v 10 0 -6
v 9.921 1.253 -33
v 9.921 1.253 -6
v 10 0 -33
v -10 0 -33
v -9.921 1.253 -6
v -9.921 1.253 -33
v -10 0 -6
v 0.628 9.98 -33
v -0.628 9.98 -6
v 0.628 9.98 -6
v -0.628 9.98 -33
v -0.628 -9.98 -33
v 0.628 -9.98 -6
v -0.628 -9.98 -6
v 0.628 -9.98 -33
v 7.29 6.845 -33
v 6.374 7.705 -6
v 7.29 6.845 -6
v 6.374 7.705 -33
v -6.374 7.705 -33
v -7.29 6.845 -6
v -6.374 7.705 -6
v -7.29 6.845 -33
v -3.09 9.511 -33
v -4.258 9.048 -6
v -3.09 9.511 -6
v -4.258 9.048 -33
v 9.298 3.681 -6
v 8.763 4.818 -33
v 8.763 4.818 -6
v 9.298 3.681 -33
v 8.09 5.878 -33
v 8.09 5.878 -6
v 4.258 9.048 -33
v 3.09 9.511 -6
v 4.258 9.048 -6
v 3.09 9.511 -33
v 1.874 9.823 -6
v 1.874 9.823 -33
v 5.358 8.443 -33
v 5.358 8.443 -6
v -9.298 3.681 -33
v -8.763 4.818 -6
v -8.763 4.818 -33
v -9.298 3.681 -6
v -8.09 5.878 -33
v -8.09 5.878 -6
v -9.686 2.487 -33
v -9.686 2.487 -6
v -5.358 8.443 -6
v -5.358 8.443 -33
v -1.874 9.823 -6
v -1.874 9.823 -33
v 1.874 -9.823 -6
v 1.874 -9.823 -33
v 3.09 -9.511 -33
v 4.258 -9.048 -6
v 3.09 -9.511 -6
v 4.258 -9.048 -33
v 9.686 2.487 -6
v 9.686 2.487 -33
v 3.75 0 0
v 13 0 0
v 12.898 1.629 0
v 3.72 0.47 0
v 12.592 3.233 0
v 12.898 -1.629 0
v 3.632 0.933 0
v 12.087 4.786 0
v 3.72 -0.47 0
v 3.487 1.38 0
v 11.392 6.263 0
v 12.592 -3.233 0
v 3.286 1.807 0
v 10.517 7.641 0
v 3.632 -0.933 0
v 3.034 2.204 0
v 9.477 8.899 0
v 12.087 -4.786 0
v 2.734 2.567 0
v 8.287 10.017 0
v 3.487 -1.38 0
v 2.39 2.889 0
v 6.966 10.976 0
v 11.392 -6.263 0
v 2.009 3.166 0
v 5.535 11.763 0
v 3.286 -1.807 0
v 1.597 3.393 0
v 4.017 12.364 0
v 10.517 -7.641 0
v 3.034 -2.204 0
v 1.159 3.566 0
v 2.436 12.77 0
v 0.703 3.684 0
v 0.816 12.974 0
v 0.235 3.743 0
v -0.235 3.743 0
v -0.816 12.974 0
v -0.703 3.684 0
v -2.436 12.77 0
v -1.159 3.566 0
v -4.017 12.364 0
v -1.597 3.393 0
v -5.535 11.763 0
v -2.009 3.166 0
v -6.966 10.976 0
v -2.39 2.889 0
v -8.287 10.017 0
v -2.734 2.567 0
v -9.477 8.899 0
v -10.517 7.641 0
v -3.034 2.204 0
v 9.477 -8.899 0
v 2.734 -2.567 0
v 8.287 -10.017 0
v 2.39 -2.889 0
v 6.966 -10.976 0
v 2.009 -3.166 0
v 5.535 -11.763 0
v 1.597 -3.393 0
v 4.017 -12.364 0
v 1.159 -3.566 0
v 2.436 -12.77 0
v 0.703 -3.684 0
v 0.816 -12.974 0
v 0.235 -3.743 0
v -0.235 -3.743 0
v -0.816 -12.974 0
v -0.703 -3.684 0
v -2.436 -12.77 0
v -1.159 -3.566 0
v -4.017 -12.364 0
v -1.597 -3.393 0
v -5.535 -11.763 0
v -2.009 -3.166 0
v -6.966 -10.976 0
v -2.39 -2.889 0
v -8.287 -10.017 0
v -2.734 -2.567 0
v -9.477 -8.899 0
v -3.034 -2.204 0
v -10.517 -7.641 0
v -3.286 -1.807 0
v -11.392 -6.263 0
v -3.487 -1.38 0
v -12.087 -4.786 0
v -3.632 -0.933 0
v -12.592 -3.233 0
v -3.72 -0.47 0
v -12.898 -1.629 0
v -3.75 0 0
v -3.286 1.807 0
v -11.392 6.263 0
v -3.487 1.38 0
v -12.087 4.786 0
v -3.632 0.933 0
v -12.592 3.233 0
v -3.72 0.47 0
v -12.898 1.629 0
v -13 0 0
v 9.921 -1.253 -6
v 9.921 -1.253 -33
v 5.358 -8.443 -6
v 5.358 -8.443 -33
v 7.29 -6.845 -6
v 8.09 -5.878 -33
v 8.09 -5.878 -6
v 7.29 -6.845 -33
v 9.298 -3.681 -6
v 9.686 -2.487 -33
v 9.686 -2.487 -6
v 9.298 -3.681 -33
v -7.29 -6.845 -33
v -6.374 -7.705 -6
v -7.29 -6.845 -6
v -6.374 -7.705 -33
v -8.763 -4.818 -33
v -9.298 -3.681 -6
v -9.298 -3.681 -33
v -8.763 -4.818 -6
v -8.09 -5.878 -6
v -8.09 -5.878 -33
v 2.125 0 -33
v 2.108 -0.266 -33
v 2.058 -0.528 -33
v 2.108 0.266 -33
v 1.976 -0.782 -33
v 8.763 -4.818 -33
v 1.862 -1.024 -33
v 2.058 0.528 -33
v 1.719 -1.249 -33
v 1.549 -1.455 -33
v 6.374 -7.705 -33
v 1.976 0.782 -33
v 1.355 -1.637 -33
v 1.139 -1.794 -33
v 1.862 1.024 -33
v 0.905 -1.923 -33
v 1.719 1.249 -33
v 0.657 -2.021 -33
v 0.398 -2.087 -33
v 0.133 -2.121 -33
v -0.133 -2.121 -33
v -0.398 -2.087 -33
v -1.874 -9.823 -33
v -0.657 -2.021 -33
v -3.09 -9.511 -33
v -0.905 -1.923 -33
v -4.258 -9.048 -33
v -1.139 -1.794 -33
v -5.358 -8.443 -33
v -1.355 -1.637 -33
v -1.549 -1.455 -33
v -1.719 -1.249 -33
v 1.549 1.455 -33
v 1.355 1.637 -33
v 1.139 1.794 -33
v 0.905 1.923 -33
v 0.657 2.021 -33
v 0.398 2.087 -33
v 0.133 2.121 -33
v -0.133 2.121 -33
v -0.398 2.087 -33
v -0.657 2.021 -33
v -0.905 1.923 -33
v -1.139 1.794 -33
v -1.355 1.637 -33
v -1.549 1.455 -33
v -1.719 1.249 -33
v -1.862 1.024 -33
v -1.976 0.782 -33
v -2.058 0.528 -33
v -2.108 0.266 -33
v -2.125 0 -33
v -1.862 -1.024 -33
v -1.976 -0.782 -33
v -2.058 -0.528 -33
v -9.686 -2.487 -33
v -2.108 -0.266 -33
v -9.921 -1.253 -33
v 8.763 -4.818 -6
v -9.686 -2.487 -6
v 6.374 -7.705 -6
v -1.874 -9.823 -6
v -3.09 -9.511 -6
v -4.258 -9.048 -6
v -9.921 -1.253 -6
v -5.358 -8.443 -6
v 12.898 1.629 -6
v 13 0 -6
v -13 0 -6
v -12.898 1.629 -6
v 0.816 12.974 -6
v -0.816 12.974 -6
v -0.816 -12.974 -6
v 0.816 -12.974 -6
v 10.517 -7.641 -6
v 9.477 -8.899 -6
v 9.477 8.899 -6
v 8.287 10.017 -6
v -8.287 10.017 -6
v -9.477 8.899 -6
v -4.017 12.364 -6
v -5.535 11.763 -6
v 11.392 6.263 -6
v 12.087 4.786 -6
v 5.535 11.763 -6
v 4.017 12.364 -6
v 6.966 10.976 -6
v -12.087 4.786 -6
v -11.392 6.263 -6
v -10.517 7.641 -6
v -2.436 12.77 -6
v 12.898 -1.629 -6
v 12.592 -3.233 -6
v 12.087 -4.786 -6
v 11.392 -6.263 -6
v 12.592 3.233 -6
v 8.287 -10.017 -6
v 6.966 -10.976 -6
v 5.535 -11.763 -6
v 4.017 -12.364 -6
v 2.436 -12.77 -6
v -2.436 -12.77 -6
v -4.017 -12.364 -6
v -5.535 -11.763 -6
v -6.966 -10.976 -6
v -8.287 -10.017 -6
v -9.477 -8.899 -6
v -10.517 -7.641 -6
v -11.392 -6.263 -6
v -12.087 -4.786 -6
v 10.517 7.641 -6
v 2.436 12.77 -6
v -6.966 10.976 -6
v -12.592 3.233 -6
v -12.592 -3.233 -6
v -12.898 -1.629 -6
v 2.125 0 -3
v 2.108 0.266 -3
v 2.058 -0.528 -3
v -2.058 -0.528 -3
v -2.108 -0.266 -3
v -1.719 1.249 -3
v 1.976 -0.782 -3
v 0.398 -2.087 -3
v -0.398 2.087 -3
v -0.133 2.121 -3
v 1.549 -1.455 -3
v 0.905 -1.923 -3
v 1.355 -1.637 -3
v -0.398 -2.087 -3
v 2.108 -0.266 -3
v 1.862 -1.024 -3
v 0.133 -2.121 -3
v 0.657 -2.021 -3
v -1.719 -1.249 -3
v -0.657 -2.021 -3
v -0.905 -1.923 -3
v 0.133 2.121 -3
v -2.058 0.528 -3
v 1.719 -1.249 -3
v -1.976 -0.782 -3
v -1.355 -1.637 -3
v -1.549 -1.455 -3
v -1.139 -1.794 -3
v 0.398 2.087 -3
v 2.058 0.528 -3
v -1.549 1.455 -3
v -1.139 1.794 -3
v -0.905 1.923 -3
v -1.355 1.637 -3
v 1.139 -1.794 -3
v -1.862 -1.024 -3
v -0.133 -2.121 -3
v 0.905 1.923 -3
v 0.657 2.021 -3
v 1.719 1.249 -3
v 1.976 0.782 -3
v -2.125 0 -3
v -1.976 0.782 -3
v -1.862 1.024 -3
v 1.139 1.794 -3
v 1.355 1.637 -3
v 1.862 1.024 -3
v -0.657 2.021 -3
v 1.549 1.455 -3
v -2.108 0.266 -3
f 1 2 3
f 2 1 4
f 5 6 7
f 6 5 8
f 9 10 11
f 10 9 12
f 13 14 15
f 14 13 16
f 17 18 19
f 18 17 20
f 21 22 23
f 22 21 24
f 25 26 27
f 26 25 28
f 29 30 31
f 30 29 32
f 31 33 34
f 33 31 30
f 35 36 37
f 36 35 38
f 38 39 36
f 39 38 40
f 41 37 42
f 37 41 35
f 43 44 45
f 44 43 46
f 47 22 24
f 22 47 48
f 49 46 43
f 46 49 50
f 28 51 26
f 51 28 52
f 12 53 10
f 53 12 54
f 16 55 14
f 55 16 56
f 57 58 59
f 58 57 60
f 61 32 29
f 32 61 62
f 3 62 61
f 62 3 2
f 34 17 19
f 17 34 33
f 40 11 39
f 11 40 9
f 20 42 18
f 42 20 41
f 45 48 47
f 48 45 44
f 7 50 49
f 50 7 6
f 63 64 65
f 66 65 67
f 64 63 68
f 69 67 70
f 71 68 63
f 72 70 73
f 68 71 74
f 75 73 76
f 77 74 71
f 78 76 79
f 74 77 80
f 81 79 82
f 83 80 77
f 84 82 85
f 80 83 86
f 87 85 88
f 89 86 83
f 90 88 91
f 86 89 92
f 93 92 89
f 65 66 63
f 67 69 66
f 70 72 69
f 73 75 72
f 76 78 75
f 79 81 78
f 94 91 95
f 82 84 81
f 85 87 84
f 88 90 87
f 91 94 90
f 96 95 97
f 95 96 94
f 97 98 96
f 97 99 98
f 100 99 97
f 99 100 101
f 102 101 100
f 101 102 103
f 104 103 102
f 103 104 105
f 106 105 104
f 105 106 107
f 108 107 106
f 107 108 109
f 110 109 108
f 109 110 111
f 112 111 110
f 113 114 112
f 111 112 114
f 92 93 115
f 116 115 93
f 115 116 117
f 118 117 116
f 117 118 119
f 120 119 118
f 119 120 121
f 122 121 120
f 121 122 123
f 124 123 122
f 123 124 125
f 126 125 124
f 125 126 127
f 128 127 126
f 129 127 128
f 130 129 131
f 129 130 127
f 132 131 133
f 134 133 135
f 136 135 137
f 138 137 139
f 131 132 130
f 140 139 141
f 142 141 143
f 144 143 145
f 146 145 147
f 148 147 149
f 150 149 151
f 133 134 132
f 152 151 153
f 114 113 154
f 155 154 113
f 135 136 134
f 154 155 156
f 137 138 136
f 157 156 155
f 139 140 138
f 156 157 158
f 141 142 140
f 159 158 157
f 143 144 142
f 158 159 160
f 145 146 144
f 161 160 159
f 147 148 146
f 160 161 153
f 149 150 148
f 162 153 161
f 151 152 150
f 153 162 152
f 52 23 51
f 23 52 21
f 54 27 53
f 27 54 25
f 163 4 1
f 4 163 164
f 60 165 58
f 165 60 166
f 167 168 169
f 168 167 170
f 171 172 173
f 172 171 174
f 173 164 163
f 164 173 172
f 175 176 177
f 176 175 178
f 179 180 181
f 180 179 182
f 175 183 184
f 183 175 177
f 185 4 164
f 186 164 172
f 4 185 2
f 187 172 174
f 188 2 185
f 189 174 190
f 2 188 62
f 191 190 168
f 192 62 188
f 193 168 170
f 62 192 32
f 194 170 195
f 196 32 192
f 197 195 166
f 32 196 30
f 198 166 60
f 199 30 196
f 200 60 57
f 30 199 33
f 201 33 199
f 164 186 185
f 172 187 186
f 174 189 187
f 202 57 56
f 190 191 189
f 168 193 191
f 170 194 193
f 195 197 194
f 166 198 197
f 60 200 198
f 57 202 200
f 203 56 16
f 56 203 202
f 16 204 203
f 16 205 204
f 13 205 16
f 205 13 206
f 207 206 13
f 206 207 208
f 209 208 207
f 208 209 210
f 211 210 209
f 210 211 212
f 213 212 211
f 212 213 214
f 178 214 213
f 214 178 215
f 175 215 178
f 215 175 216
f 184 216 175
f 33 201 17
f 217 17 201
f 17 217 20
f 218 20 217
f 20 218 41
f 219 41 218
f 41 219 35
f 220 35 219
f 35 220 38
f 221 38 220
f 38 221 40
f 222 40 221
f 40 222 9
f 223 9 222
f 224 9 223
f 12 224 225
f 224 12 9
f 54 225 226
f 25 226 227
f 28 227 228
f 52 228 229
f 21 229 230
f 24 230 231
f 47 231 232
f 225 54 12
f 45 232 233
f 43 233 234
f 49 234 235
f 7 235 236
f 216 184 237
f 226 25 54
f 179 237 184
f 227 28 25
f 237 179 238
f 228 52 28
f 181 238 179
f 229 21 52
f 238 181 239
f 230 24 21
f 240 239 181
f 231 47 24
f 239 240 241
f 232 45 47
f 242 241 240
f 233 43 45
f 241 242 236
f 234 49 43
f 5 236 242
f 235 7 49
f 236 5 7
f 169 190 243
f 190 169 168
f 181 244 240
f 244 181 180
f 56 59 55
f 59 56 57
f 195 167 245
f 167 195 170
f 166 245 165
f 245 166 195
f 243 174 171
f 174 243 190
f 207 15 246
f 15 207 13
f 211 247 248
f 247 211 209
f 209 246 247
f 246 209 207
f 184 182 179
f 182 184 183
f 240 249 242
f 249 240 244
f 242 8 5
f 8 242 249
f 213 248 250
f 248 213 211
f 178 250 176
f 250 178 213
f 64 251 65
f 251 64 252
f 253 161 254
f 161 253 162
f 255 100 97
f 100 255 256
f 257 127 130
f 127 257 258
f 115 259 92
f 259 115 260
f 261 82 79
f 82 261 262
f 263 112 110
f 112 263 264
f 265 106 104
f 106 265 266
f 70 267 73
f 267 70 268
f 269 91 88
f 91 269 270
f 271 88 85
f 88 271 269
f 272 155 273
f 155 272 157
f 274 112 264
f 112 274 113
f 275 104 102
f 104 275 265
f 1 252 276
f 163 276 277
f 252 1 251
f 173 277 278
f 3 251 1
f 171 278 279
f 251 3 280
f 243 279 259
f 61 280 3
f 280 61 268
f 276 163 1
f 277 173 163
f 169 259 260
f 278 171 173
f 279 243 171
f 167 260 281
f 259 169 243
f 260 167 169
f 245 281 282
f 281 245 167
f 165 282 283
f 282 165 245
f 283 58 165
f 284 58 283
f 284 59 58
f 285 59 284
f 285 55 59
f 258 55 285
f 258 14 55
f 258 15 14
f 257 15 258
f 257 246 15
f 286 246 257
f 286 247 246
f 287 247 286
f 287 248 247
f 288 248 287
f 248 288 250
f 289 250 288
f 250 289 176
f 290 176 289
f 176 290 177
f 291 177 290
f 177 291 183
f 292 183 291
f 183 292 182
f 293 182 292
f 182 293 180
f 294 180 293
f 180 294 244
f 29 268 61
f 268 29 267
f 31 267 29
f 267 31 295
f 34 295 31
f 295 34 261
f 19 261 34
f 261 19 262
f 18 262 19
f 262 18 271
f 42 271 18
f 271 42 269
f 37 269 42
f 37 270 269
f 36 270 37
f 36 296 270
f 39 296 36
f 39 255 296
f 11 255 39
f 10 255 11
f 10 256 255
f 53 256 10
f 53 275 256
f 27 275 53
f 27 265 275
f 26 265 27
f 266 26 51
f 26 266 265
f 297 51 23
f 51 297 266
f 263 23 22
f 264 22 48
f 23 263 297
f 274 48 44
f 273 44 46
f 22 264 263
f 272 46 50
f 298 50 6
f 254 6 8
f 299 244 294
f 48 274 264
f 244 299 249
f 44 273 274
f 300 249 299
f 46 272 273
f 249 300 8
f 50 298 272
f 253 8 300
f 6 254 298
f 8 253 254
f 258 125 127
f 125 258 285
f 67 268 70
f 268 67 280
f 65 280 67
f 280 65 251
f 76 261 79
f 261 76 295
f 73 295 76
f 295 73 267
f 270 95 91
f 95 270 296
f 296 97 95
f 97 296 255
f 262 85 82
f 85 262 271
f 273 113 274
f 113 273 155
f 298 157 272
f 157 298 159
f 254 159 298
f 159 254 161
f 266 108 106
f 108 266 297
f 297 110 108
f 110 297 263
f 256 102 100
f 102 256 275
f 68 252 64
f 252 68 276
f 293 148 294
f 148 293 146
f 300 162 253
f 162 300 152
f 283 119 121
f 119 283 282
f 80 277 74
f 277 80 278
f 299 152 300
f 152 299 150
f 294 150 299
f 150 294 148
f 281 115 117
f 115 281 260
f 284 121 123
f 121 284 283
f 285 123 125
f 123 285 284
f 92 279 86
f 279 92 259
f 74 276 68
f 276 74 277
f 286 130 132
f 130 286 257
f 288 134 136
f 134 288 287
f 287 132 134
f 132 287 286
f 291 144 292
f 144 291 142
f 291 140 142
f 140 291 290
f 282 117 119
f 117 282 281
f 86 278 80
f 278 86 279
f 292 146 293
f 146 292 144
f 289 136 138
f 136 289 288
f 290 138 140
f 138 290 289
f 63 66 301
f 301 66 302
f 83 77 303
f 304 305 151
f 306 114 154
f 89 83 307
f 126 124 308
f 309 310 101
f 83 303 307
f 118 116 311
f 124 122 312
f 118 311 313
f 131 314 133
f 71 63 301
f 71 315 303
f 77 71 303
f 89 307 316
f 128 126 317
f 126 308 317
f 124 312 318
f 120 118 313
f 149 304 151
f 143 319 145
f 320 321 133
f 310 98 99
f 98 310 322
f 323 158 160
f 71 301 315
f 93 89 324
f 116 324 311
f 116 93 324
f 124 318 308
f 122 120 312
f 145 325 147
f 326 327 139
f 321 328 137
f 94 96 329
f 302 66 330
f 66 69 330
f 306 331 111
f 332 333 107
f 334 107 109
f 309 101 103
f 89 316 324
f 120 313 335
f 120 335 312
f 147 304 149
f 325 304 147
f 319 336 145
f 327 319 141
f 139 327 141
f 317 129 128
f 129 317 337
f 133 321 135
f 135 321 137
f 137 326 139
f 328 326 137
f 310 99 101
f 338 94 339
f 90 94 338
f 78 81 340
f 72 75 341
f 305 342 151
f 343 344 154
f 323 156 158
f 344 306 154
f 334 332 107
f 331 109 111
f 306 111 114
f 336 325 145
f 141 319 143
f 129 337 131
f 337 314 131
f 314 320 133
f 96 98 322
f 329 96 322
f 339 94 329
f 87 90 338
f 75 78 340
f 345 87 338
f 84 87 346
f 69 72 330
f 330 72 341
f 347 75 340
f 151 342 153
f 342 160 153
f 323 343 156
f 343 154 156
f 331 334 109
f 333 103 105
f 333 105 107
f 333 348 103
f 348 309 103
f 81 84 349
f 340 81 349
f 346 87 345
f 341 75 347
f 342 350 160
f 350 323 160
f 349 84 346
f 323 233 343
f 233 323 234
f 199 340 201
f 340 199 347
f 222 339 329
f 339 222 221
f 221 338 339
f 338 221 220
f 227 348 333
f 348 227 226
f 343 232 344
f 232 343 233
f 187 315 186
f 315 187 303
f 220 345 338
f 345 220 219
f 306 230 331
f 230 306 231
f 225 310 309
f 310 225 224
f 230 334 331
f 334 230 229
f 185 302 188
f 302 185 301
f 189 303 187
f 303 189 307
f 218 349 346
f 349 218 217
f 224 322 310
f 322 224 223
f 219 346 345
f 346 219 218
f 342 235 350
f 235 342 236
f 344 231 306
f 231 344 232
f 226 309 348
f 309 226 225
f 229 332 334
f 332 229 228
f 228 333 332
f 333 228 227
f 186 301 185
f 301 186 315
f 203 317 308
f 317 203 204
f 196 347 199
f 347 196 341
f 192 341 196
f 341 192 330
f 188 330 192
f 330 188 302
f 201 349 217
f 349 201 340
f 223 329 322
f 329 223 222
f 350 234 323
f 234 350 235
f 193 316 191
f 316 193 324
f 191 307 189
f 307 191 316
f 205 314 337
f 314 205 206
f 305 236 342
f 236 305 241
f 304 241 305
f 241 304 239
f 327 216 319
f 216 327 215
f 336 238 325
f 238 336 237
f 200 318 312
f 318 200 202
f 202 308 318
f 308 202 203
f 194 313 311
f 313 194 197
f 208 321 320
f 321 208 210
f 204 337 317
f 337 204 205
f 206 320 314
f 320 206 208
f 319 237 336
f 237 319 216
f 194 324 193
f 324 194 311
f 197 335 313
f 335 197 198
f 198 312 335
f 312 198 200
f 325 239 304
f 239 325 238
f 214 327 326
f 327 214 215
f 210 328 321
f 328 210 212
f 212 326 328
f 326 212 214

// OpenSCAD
$fn = 50;


difference() {
	union() {
		translate(v = [0, 0, -33.0000000000]) {
			cylinder(h = 33, r = 10.0000000000);
		}
		translate(v = [0, 0, -6.0000000000]) {
			cylinder(h = 6, r = 13.0000000000);
		}
	}
	union() {
		translate(v = [0, 0, 0]) {
			rotate(a = [0, 0, 0]) {
				difference() {
					union() {
						#translate(v = [0, 0, -33.0000000000]) {
							cylinder(h = 33, r = 2.0000000000);
						}
						#translate(v = [0, 0, -3]) {
							cylinder(h = 3, r1 = 2.1250000000, r2 = 3.7500000000);
						}
						#translate(v = [0, 0, -33.0000000000]) {
							cylinder(h = 33, r = 2.1250000000);
						}
						#translate(v = [0, 0, -33.0000000000]) {
							cylinder(h = 33, r = 2.0000000000);
						}
					}
					union();
				}
			}
		}
	}
}
